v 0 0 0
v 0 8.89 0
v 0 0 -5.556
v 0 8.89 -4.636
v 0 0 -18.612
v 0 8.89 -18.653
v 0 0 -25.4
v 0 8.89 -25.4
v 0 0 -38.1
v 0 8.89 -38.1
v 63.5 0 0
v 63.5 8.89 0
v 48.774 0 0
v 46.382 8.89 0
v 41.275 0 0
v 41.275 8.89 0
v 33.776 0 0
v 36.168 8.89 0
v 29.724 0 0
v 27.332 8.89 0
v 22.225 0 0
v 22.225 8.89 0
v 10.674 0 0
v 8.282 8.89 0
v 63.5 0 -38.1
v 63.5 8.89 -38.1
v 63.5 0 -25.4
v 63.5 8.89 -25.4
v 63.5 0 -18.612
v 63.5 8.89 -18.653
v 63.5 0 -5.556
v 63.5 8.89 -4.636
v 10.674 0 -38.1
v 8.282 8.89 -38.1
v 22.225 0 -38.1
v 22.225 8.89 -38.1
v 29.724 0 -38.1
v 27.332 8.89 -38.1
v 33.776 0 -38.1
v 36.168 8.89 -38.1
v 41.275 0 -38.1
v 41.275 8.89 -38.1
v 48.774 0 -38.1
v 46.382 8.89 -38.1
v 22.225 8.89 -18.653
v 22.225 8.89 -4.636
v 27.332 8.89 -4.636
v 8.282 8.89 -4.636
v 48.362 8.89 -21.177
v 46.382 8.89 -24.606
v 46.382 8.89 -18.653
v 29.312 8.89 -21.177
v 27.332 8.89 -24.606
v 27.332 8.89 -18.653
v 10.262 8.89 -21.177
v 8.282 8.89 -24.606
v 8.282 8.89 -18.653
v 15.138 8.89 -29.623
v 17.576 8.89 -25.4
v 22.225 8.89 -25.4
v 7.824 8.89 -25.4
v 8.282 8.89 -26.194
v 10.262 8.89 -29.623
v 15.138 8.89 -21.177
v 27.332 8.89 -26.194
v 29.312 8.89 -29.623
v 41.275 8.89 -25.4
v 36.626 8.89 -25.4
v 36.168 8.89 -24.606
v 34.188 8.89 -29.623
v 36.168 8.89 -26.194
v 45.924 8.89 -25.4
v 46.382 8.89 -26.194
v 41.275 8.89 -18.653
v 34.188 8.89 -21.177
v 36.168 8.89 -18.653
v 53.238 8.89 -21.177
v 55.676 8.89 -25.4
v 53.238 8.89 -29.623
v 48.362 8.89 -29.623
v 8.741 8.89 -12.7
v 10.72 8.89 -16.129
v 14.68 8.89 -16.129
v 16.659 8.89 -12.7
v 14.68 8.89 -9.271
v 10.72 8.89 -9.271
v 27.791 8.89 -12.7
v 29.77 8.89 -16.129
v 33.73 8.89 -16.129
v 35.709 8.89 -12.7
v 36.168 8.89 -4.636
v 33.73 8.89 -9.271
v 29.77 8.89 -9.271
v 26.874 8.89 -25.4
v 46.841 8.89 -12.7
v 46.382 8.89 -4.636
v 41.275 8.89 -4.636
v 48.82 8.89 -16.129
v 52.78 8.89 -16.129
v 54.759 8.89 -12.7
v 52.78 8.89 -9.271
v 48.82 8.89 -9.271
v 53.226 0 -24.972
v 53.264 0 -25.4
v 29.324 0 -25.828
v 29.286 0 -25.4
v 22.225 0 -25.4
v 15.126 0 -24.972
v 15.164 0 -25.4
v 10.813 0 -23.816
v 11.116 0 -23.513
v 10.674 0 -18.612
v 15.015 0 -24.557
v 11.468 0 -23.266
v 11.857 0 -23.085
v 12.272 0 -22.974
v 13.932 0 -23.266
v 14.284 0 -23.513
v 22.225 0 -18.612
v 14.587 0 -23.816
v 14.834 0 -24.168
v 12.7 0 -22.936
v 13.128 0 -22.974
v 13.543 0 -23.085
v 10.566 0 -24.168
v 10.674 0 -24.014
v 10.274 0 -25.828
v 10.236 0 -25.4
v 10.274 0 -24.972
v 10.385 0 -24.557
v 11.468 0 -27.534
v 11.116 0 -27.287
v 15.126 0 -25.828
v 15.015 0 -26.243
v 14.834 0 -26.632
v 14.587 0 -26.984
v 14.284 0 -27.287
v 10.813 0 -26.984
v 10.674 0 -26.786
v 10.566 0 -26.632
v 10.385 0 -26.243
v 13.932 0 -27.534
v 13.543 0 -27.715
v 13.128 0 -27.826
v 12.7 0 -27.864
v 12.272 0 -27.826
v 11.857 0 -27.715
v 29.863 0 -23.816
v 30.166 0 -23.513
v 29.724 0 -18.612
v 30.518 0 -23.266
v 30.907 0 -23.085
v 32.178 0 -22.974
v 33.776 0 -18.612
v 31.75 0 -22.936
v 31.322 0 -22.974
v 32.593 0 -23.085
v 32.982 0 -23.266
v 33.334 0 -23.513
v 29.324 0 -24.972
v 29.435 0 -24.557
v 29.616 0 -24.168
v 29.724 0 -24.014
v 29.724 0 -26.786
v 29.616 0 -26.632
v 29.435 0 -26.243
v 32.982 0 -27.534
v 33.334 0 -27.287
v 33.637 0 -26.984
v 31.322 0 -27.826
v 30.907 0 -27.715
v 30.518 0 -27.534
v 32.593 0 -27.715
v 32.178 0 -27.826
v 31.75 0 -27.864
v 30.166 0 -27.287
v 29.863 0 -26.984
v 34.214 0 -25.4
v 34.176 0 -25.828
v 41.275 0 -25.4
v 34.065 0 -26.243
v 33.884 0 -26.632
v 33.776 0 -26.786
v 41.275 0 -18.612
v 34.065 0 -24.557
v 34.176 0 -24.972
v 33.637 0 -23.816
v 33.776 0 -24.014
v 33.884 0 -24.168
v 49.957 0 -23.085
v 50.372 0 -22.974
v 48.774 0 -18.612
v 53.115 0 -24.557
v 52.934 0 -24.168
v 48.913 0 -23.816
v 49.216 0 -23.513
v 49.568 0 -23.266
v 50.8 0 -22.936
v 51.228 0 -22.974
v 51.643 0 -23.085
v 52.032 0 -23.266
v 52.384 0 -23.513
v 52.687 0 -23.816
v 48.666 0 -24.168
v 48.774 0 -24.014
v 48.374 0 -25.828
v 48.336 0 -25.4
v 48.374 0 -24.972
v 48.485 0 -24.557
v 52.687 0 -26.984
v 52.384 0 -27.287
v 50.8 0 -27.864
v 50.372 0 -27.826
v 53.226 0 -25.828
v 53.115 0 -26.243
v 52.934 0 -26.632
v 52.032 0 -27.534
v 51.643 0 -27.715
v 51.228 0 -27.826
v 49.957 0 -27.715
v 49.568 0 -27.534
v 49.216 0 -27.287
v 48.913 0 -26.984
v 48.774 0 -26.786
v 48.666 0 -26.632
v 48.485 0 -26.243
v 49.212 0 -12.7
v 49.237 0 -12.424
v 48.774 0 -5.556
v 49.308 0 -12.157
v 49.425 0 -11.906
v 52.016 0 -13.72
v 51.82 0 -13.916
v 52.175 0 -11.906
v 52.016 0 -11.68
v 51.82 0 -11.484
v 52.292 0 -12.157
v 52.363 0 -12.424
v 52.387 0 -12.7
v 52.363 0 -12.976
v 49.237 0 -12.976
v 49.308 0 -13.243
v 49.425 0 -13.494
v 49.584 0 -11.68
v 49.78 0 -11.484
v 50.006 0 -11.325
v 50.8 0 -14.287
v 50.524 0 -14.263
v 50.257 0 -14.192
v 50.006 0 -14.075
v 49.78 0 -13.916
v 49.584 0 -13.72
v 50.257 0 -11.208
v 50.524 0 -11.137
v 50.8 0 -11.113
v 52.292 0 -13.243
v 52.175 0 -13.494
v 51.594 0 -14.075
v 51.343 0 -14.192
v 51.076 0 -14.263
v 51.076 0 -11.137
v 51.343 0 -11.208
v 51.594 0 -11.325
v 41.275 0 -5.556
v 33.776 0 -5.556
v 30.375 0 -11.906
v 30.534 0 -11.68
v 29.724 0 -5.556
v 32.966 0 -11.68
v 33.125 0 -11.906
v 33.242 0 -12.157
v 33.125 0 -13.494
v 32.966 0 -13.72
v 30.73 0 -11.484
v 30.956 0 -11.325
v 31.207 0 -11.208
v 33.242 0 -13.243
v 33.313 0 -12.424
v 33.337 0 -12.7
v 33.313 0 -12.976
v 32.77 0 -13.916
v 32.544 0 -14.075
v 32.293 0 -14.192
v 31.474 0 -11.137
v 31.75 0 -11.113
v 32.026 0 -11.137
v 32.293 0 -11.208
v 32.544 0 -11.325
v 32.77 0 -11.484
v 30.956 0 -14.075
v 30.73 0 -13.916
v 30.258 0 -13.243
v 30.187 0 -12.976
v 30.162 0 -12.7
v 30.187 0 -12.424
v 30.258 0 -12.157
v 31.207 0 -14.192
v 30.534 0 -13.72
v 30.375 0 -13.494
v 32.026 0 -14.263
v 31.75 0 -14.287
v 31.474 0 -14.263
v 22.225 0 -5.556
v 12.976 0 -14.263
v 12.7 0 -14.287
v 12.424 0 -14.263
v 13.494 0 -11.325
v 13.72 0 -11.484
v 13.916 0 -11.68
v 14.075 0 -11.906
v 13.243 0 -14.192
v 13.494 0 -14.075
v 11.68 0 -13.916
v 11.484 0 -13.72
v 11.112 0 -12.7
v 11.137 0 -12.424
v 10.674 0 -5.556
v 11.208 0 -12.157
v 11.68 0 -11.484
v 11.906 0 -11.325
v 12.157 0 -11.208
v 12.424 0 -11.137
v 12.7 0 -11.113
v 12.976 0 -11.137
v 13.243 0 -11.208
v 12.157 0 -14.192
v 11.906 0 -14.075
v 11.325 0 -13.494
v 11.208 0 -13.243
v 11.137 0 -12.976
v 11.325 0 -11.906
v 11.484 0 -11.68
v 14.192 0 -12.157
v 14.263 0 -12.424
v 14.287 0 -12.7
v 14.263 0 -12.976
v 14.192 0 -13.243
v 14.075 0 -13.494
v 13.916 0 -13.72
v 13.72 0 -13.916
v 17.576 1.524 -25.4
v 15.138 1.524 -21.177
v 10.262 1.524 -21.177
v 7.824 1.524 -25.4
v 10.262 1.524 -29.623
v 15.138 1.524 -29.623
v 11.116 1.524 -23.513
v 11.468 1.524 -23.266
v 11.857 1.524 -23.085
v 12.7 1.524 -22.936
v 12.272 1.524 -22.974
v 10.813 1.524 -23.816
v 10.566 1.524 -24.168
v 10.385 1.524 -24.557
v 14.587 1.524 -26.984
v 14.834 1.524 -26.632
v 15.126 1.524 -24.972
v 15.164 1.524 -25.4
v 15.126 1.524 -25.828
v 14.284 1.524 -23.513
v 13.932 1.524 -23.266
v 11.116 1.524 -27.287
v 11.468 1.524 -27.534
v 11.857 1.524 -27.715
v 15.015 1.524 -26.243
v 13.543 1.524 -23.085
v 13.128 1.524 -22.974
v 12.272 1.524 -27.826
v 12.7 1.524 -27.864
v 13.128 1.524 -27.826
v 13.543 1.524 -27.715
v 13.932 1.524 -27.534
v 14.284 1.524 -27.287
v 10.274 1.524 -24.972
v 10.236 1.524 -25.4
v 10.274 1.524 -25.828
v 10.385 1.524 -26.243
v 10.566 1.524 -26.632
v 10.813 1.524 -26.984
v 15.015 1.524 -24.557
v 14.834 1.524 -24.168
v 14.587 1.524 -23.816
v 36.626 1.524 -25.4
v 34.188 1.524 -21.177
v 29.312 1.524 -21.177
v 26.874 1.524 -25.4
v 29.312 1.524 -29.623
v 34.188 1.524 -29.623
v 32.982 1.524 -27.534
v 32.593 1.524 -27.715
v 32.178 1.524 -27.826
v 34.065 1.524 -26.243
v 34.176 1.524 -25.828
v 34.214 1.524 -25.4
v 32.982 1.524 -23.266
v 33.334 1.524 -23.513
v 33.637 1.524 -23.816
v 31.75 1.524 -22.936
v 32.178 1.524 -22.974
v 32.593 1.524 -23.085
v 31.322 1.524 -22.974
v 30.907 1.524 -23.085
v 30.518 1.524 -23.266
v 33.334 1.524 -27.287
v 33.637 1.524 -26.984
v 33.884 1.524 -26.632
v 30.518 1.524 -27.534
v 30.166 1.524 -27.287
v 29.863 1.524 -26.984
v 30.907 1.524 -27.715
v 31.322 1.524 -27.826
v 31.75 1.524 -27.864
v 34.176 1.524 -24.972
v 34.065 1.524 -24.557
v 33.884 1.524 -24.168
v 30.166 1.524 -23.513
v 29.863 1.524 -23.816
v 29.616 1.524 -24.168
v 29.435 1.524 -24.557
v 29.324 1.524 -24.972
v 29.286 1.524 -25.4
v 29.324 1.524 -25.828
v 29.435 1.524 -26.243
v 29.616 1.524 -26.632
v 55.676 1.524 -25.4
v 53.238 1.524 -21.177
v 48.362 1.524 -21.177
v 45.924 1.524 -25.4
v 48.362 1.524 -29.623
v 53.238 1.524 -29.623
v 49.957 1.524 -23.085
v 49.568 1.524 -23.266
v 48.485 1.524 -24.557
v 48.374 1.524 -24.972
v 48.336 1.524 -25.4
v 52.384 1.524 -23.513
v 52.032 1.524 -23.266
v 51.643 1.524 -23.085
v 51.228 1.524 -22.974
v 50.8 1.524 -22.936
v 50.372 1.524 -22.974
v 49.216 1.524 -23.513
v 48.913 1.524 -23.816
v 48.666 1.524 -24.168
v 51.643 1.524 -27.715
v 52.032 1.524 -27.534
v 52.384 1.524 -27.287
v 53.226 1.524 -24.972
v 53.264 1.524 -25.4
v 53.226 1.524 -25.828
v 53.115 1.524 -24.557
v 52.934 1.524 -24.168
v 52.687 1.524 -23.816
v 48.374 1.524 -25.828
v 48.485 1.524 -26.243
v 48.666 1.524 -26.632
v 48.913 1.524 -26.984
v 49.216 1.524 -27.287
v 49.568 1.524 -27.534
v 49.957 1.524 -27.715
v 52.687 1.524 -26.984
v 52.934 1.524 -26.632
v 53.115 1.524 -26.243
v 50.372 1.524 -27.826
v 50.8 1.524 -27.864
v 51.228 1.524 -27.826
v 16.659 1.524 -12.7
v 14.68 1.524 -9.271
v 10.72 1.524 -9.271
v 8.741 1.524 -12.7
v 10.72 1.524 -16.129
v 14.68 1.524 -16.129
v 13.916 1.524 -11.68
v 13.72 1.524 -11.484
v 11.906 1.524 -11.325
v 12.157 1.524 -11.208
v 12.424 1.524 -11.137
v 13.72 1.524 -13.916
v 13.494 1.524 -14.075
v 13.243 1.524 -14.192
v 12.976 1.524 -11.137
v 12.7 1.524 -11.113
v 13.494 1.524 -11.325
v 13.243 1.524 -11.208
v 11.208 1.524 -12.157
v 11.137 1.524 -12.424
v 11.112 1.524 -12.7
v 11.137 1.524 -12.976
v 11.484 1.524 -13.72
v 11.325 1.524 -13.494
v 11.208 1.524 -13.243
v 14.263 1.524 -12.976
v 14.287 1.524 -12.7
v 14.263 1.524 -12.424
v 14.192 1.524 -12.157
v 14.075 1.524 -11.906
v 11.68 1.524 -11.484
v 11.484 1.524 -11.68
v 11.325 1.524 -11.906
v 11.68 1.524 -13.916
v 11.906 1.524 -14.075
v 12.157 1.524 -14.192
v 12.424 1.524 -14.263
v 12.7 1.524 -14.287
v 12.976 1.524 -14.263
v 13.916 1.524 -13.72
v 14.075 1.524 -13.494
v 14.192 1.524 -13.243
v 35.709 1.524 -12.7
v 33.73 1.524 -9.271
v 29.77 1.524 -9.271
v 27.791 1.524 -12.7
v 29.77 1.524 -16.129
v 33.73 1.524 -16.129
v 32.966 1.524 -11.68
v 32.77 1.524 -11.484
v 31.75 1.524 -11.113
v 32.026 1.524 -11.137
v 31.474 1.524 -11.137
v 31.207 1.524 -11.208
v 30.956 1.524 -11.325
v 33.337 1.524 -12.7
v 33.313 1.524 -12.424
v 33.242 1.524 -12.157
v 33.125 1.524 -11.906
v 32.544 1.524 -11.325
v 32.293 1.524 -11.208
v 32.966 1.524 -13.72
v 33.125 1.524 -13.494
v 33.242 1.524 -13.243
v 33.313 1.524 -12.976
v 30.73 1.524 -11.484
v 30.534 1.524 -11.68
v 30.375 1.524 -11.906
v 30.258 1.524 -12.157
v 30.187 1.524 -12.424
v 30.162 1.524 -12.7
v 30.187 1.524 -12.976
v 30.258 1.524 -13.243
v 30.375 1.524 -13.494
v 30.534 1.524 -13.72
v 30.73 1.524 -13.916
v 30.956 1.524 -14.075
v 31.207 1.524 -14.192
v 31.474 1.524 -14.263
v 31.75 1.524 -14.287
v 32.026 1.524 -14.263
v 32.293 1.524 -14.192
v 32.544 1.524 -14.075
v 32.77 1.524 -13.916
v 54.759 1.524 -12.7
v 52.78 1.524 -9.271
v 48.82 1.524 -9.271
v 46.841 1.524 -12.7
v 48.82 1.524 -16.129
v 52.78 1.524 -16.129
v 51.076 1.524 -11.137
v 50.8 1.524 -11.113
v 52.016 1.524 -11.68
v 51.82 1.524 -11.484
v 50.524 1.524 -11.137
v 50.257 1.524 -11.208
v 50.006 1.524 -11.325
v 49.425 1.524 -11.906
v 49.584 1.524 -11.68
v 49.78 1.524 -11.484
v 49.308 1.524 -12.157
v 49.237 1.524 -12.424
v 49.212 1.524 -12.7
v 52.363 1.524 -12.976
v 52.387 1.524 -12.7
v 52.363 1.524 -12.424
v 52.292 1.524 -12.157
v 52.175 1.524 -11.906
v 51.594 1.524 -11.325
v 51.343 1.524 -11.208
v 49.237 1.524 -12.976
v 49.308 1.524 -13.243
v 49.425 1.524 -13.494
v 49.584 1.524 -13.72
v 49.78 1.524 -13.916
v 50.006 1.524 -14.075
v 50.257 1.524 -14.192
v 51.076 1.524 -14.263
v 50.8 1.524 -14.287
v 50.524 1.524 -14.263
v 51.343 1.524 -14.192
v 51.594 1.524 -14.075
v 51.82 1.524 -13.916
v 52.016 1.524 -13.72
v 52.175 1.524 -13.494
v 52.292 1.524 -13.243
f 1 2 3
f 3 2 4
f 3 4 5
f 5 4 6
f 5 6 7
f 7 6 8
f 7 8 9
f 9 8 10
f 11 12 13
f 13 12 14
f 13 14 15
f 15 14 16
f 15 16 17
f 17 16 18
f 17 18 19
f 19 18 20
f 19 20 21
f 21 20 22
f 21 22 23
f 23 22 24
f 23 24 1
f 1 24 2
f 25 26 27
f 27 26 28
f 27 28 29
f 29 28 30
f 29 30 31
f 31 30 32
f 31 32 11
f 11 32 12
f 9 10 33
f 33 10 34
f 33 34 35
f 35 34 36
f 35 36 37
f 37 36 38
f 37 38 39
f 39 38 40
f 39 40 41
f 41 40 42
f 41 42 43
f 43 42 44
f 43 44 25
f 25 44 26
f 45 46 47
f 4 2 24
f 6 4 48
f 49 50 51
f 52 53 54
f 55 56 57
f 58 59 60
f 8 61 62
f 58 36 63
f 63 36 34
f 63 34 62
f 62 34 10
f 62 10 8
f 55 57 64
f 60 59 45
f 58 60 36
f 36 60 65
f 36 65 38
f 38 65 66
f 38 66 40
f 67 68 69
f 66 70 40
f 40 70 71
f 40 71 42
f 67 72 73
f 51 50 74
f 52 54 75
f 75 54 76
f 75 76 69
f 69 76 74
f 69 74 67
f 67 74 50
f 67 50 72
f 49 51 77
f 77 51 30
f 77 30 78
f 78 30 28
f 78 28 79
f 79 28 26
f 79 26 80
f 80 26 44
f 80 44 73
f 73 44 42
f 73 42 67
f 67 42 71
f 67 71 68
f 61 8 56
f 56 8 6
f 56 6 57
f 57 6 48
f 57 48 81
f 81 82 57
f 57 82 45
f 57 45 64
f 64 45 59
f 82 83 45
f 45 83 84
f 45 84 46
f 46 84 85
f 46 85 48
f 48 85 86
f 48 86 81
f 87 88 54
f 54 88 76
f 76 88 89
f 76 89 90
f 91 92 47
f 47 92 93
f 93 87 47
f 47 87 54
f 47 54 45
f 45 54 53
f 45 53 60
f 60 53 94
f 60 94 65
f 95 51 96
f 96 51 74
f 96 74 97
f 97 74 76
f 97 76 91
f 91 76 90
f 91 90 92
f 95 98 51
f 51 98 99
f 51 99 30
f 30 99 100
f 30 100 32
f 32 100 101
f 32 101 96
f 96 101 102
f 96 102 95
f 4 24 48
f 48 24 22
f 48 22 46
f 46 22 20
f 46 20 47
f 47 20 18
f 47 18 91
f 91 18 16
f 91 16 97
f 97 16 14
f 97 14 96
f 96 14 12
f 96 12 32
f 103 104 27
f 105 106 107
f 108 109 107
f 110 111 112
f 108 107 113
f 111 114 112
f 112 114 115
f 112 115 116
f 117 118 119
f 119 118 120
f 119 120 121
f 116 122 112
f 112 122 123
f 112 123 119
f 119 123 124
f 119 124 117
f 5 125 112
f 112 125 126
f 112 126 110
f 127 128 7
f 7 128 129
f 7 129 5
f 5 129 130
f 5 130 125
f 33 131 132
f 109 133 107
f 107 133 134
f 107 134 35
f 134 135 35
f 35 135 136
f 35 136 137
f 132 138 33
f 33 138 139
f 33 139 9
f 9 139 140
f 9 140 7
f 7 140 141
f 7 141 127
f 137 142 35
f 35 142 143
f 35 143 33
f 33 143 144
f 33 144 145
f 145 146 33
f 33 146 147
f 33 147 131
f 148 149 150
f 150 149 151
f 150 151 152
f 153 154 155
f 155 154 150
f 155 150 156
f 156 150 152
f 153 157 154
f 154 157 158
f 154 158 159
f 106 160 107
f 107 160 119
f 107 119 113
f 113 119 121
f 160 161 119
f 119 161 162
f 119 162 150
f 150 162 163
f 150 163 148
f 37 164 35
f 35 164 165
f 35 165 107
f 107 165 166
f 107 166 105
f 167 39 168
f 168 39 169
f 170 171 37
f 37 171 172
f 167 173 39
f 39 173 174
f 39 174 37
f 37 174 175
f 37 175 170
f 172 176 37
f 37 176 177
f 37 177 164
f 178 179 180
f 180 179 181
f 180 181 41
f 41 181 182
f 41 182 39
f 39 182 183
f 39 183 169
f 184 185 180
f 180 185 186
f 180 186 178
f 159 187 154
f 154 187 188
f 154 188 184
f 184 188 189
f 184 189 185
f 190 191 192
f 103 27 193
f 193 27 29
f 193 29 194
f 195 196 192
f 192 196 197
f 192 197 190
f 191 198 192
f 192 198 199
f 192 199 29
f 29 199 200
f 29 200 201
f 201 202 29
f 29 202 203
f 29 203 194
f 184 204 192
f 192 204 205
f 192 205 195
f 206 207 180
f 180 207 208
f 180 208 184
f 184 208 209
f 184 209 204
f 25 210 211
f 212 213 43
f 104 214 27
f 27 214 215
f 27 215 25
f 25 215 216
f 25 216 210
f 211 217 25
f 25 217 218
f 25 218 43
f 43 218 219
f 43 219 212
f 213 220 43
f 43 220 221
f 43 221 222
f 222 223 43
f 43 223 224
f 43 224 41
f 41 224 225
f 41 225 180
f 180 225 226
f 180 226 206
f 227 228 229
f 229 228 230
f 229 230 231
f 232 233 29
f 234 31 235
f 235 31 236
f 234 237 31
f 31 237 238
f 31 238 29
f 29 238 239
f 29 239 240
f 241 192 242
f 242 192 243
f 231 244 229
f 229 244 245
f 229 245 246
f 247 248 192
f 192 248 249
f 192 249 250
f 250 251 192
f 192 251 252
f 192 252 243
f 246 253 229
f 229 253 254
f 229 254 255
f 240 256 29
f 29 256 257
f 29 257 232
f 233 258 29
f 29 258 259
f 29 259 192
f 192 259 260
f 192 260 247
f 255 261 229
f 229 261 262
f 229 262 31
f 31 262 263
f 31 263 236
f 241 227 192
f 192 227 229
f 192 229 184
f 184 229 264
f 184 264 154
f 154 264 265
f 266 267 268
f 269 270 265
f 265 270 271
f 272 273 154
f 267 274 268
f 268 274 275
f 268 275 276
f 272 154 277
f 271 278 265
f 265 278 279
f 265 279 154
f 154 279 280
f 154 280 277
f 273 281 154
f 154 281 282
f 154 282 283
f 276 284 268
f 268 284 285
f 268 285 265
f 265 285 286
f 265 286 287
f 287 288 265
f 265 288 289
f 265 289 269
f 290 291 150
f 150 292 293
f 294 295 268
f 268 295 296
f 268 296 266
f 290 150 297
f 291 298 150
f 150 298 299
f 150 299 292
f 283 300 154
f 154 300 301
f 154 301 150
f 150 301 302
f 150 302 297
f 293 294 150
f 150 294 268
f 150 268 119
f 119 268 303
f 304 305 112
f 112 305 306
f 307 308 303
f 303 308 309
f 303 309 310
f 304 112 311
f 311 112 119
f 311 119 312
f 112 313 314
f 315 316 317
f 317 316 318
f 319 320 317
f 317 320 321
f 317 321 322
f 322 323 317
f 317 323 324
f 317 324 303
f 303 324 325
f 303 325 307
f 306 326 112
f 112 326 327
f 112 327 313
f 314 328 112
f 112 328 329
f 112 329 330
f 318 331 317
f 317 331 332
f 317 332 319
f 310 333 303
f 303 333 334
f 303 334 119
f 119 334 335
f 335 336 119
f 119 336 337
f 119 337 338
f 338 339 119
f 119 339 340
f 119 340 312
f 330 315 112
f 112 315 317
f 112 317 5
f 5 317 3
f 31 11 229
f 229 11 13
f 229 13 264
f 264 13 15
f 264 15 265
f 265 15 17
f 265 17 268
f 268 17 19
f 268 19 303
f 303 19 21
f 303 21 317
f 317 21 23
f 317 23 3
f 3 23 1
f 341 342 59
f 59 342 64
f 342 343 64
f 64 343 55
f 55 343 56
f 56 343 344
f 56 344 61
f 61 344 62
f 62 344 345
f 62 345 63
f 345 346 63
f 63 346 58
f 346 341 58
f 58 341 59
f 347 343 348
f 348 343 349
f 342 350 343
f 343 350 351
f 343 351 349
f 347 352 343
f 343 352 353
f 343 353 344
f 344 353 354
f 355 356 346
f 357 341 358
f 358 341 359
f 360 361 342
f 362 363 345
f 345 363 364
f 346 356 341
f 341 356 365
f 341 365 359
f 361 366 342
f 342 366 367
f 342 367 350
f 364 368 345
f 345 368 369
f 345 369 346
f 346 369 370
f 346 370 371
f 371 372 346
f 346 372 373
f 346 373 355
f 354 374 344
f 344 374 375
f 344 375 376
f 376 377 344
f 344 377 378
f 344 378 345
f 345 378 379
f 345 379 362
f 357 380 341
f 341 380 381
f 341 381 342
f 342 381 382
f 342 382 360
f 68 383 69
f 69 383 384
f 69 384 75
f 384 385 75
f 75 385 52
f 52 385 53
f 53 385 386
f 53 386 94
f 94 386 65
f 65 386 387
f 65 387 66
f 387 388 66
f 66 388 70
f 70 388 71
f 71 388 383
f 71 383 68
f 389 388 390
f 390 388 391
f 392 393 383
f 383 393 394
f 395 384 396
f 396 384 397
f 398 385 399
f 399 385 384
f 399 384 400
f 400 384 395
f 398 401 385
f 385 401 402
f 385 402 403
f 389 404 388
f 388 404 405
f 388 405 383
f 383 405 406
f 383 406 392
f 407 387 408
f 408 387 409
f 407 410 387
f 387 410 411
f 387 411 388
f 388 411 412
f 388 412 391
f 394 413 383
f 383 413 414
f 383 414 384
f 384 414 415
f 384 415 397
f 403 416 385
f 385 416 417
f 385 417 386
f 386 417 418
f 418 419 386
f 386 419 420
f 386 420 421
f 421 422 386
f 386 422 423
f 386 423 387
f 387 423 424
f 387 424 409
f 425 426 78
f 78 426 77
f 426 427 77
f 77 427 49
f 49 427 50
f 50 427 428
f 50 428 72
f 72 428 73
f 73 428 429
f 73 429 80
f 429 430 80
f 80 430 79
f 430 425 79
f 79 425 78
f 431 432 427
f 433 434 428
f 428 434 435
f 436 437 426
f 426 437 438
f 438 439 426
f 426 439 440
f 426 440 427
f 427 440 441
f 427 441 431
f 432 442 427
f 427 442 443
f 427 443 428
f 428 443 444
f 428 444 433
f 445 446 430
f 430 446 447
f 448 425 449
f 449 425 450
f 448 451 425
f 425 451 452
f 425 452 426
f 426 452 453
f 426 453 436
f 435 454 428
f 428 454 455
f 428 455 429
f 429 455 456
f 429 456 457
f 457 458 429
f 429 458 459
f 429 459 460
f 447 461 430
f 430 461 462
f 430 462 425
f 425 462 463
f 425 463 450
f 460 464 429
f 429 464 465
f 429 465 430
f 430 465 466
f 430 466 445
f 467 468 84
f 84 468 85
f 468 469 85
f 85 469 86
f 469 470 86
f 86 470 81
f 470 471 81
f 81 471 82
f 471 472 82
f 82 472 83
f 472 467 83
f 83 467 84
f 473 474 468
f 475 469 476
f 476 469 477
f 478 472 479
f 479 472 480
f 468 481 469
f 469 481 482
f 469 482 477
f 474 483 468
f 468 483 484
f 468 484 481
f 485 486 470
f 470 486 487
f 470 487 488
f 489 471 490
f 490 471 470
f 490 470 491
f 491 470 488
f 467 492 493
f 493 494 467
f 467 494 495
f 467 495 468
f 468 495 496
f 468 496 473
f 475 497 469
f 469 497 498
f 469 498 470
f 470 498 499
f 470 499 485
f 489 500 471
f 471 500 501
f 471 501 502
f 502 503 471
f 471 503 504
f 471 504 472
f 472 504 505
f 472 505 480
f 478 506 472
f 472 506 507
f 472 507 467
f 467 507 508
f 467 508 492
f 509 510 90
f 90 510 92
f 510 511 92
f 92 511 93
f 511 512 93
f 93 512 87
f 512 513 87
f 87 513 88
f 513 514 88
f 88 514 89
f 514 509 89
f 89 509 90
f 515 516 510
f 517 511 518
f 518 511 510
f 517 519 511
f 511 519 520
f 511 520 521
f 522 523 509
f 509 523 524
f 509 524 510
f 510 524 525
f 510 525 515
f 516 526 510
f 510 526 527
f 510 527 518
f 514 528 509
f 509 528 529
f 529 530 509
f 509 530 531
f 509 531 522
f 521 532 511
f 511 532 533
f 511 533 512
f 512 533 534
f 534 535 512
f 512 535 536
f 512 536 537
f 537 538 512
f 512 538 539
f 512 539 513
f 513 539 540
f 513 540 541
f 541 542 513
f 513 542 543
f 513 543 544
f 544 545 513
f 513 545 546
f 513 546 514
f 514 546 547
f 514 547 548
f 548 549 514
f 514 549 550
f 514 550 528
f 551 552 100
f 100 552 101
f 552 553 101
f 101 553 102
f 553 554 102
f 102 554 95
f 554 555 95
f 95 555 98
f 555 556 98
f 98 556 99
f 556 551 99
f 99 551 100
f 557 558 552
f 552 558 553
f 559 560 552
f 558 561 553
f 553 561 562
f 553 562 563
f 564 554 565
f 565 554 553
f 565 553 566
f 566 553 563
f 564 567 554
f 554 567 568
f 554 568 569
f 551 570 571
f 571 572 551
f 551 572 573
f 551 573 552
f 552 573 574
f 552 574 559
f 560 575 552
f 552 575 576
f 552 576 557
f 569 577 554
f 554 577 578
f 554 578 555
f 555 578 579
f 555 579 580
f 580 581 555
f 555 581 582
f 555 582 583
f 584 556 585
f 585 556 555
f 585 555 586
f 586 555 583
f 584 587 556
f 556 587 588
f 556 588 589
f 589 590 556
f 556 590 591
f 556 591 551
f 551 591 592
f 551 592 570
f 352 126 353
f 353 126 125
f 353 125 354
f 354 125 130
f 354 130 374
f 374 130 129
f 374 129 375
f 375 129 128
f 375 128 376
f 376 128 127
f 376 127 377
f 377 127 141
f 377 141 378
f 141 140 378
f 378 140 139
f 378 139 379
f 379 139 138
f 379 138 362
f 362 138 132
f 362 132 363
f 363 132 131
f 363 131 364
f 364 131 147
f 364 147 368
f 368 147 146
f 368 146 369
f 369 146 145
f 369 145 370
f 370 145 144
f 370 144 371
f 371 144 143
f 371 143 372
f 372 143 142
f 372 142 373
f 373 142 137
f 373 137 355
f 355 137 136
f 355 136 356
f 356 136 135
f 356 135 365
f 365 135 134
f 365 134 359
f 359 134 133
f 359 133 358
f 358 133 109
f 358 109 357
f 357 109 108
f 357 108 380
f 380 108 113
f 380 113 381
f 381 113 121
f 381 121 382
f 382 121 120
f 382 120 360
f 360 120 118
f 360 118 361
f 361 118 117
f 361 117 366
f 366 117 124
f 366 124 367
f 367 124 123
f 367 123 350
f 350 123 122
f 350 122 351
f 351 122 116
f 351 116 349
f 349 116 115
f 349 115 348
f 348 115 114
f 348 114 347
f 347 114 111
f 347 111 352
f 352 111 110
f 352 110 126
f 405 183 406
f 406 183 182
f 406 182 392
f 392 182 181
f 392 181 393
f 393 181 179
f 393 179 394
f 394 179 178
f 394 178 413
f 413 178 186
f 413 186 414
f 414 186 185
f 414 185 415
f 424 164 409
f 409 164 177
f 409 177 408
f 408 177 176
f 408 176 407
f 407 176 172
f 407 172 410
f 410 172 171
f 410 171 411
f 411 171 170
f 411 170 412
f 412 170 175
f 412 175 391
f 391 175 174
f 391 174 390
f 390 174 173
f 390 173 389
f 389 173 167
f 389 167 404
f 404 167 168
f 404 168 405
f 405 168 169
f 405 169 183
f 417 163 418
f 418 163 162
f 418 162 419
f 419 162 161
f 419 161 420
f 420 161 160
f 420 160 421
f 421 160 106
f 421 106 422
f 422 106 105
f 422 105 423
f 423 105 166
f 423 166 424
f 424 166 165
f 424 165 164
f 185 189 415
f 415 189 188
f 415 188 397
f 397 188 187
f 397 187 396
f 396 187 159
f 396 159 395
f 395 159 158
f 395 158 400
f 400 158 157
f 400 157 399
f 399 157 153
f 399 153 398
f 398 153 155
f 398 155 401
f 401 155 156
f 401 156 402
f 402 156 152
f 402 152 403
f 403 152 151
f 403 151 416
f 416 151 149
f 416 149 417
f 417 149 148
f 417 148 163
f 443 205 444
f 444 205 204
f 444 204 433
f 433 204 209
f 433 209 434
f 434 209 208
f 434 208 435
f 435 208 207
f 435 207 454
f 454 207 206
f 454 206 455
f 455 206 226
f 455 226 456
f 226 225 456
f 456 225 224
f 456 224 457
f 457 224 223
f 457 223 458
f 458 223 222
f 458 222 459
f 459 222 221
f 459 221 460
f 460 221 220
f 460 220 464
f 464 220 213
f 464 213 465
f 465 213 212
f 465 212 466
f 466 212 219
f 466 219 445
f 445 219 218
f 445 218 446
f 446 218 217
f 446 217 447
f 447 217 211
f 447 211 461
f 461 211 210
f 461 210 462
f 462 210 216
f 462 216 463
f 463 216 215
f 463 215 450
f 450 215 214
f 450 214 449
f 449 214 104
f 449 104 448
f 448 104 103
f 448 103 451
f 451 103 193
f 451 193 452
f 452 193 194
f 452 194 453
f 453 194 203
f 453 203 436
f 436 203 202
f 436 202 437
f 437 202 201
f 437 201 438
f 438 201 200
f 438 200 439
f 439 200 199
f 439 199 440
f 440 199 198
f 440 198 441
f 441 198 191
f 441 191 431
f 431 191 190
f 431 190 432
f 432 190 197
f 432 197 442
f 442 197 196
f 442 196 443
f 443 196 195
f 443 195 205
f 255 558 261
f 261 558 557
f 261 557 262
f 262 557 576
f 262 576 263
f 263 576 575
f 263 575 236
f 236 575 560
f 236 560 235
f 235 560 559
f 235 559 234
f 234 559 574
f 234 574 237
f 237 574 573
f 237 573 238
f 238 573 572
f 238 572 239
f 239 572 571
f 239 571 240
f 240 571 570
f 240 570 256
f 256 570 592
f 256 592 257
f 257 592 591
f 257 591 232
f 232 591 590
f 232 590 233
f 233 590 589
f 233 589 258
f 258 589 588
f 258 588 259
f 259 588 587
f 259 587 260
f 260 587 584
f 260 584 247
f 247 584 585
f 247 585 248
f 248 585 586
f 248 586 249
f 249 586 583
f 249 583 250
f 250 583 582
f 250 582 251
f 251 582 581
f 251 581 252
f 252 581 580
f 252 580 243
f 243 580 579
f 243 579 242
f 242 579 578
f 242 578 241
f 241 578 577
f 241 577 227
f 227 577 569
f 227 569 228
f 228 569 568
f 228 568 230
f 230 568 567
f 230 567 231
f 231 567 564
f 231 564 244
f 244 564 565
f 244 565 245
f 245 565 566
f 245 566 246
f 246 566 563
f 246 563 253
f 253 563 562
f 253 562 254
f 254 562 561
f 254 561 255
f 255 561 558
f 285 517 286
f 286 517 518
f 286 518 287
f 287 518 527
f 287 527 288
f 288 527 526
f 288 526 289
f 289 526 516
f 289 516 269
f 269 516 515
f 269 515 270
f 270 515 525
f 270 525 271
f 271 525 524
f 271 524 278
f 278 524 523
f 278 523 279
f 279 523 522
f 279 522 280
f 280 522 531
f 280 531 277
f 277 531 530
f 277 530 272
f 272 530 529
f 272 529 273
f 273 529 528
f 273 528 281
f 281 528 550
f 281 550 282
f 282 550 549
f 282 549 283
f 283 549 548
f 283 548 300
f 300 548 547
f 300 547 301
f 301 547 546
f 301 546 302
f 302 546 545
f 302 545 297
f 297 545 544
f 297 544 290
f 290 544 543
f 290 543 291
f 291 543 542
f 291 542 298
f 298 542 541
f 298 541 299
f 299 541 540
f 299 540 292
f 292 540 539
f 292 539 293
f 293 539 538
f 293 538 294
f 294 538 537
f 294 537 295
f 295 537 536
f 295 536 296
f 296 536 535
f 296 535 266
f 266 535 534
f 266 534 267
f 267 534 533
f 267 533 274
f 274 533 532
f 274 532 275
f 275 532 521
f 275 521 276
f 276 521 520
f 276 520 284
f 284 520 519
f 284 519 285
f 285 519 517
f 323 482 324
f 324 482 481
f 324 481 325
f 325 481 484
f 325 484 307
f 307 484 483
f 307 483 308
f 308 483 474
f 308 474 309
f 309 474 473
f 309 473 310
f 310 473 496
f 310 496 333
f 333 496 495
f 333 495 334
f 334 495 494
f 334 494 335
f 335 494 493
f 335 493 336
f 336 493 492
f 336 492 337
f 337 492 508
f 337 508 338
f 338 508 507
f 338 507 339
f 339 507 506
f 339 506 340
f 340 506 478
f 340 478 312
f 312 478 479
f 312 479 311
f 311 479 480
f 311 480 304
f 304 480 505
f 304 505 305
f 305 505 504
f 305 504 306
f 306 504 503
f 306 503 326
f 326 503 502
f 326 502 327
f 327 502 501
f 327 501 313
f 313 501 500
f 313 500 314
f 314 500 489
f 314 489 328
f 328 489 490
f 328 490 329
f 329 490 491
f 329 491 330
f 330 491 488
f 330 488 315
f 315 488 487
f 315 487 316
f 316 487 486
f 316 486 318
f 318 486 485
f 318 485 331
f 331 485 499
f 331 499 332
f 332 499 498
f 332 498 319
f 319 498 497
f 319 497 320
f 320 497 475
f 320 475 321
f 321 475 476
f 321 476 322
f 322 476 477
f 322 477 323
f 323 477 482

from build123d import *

# Parameters (mm, degrees)
SKETCH1_W           = 63.5
SKETCH1_H           = 38.1
BOSS_EXTRUDE1_DEPTH = 8.89
SKETCH2_R           = 2.4638
SKETCH2_R_2         = 1.5875
CUT_EXTRUDE1_DEPTH  = 7.366
SKETCH3_R           = 2.4638
SKETCH3_R_2         = 1.5875
CUT_EXTRUDE2_DEPTH  = 75.584798049


with BuildPart() as part:
    # Sketch1 → Boss-Extrude1 (new body)
    with BuildSketch(Plane(origin=(0, 0, 0), x_dir=(1, 0, 0), z_dir=(0, 1, 0))):
        with Locations((31.75, 19.05)):
            Rectangle(SKETCH1_W, SKETCH1_H)
    extrude(amount=BOSS_EXTRUDE1_DEPTH)

    # Sketch2 → Cut-Extrude1 (cut)
    # profile 1 of 6: a face of its own
    with BuildSketch(Plane(origin=(0, 8.89, 0), x_dir=(1, 0, 0), z_dir=(0, 1, 0))):
        Polygon((17.576011698, 25.4), (15.138005849, 29.62275), (10.261994151, 29.62275), (7.823988302, 25.4), (10.261994151, 21.17725), (15.138005849, 21.17725), align=None)
        with Locations(Location((12.7, 25.4, 0), (0, 0, 270))):
            Circle(SKETCH2_R, mode=Mode.SUBTRACT)
    # profile 2 of 6: a face of its own
    with BuildSketch(Plane(origin=(0, 8.89, 0), x_dir=(1, 0, 0), z_dir=(0, 1, 0))):
        Polygon((36.626011698, 25.4), (34.188005849, 29.62275), (29.311994151, 29.62275), (26.873988302, 25.4), (29.311994151, 21.17725), (34.188005849, 21.17725), align=None)
        with Locations(Location((31.75, 25.4, 0), (0, 0, 270))):
            Circle(SKETCH2_R, mode=Mode.SUBTRACT)
    # profile 3 of 6: a face of its own
    with BuildSketch(Plane(origin=(0, 8.89, 0), x_dir=(1, 0, 0), z_dir=(0, 1, 0))):
        Polygon((55.676011698, 25.4), (53.238005849, 29.62275), (48.361994151, 29.62275), (45.923988302, 25.4), (48.361994151, 21.17725), (53.238005849, 21.17725), align=None)
        with Locations(Location((50.8, 25.4, 0), (0, 0, 270))):
            Circle(SKETCH2_R, mode=Mode.SUBTRACT)
    # profile 4 of 6: a face of its own
    with BuildSketch(Plane(origin=(0, 8.89, 0), x_dir=(1, 0, 0), z_dir=(0, 1, 0))):
        Polygon((16.659468146, 12.7), (14.679734073, 16.129), (10.720265927, 16.129), (8.740531854, 12.7), (10.720265927, 9.271), (14.679734073, 9.271), align=None)
        with Locations(Location((12.7, 12.7, 0), (0, 0, 270))):
            Circle(SKETCH2_R_2, mode=Mode.SUBTRACT)
    # profile 5 of 6: a face of its own
    with BuildSketch(Plane(origin=(0, 8.89, 0), x_dir=(1, 0, 0), z_dir=(0, 1, 0))):
        Polygon((35.709468146, 12.7), (33.729734073, 16.129), (29.770265927, 16.129), (27.790531854, 12.7), (29.770265927, 9.271), (33.729734073, 9.271), align=None)
        with Locations(Location((31.75, 12.7, 0), (0, 0, 270))):
            Circle(SKETCH2_R_2, mode=Mode.SUBTRACT)
    # profile 6 of 6: a face of its own
    with BuildSketch(Plane(origin=(0, 8.89, 0), x_dir=(1, 0, 0), z_dir=(0, 1, 0))):
        Polygon((54.759468146, 12.7), (52.779734073, 16.129), (48.820265927, 16.129), (46.840531854, 12.7), (48.820265927, 9.271), (52.779734073, 9.271), align=None)
        with Locations(Location((50.8, 12.7, 0), (0, 0, 270))):
            Circle(SKETCH2_R_2, mode=Mode.SUBTRACT)
    extrude(amount=-CUT_EXTRUDE1_DEPTH, mode=Mode.SUBTRACT)

    # Sketch3 → Cut-Extrude2 (cut, through all)
    with BuildSketch(Plane(origin=(0, 8.89, 0), x_dir=(1, 0, 0), z_dir=(0, 1, 0))):
        with Locations(Location((12.7, 25.4, 0), (0, 0, 270))):
            Circle(SKETCH3_R)
        with Locations(Location((31.75, 25.4, 0), (0, 0, 270))):
            Circle(SKETCH3_R)
        with Locations(Location((50.8, 25.4, 0), (0, 0, 270))):
            Circle(SKETCH3_R)
        with Locations(Location((50.8, 12.7, 0), (0, 0, 270))):
            Circle(SKETCH3_R_2)
        with Locations(Location((31.75, 12.7, 0), (0, 0, 270))):
            Circle(SKETCH3_R_2)
        with Locations(Location((12.7, 12.7, 0), (0, 0, 270))):
            Circle(SKETCH3_R_2)
    extrude(amount=-CUT_EXTRUDE2_DEPTH, mode=Mode.SUBTRACT)


solid = part.part
